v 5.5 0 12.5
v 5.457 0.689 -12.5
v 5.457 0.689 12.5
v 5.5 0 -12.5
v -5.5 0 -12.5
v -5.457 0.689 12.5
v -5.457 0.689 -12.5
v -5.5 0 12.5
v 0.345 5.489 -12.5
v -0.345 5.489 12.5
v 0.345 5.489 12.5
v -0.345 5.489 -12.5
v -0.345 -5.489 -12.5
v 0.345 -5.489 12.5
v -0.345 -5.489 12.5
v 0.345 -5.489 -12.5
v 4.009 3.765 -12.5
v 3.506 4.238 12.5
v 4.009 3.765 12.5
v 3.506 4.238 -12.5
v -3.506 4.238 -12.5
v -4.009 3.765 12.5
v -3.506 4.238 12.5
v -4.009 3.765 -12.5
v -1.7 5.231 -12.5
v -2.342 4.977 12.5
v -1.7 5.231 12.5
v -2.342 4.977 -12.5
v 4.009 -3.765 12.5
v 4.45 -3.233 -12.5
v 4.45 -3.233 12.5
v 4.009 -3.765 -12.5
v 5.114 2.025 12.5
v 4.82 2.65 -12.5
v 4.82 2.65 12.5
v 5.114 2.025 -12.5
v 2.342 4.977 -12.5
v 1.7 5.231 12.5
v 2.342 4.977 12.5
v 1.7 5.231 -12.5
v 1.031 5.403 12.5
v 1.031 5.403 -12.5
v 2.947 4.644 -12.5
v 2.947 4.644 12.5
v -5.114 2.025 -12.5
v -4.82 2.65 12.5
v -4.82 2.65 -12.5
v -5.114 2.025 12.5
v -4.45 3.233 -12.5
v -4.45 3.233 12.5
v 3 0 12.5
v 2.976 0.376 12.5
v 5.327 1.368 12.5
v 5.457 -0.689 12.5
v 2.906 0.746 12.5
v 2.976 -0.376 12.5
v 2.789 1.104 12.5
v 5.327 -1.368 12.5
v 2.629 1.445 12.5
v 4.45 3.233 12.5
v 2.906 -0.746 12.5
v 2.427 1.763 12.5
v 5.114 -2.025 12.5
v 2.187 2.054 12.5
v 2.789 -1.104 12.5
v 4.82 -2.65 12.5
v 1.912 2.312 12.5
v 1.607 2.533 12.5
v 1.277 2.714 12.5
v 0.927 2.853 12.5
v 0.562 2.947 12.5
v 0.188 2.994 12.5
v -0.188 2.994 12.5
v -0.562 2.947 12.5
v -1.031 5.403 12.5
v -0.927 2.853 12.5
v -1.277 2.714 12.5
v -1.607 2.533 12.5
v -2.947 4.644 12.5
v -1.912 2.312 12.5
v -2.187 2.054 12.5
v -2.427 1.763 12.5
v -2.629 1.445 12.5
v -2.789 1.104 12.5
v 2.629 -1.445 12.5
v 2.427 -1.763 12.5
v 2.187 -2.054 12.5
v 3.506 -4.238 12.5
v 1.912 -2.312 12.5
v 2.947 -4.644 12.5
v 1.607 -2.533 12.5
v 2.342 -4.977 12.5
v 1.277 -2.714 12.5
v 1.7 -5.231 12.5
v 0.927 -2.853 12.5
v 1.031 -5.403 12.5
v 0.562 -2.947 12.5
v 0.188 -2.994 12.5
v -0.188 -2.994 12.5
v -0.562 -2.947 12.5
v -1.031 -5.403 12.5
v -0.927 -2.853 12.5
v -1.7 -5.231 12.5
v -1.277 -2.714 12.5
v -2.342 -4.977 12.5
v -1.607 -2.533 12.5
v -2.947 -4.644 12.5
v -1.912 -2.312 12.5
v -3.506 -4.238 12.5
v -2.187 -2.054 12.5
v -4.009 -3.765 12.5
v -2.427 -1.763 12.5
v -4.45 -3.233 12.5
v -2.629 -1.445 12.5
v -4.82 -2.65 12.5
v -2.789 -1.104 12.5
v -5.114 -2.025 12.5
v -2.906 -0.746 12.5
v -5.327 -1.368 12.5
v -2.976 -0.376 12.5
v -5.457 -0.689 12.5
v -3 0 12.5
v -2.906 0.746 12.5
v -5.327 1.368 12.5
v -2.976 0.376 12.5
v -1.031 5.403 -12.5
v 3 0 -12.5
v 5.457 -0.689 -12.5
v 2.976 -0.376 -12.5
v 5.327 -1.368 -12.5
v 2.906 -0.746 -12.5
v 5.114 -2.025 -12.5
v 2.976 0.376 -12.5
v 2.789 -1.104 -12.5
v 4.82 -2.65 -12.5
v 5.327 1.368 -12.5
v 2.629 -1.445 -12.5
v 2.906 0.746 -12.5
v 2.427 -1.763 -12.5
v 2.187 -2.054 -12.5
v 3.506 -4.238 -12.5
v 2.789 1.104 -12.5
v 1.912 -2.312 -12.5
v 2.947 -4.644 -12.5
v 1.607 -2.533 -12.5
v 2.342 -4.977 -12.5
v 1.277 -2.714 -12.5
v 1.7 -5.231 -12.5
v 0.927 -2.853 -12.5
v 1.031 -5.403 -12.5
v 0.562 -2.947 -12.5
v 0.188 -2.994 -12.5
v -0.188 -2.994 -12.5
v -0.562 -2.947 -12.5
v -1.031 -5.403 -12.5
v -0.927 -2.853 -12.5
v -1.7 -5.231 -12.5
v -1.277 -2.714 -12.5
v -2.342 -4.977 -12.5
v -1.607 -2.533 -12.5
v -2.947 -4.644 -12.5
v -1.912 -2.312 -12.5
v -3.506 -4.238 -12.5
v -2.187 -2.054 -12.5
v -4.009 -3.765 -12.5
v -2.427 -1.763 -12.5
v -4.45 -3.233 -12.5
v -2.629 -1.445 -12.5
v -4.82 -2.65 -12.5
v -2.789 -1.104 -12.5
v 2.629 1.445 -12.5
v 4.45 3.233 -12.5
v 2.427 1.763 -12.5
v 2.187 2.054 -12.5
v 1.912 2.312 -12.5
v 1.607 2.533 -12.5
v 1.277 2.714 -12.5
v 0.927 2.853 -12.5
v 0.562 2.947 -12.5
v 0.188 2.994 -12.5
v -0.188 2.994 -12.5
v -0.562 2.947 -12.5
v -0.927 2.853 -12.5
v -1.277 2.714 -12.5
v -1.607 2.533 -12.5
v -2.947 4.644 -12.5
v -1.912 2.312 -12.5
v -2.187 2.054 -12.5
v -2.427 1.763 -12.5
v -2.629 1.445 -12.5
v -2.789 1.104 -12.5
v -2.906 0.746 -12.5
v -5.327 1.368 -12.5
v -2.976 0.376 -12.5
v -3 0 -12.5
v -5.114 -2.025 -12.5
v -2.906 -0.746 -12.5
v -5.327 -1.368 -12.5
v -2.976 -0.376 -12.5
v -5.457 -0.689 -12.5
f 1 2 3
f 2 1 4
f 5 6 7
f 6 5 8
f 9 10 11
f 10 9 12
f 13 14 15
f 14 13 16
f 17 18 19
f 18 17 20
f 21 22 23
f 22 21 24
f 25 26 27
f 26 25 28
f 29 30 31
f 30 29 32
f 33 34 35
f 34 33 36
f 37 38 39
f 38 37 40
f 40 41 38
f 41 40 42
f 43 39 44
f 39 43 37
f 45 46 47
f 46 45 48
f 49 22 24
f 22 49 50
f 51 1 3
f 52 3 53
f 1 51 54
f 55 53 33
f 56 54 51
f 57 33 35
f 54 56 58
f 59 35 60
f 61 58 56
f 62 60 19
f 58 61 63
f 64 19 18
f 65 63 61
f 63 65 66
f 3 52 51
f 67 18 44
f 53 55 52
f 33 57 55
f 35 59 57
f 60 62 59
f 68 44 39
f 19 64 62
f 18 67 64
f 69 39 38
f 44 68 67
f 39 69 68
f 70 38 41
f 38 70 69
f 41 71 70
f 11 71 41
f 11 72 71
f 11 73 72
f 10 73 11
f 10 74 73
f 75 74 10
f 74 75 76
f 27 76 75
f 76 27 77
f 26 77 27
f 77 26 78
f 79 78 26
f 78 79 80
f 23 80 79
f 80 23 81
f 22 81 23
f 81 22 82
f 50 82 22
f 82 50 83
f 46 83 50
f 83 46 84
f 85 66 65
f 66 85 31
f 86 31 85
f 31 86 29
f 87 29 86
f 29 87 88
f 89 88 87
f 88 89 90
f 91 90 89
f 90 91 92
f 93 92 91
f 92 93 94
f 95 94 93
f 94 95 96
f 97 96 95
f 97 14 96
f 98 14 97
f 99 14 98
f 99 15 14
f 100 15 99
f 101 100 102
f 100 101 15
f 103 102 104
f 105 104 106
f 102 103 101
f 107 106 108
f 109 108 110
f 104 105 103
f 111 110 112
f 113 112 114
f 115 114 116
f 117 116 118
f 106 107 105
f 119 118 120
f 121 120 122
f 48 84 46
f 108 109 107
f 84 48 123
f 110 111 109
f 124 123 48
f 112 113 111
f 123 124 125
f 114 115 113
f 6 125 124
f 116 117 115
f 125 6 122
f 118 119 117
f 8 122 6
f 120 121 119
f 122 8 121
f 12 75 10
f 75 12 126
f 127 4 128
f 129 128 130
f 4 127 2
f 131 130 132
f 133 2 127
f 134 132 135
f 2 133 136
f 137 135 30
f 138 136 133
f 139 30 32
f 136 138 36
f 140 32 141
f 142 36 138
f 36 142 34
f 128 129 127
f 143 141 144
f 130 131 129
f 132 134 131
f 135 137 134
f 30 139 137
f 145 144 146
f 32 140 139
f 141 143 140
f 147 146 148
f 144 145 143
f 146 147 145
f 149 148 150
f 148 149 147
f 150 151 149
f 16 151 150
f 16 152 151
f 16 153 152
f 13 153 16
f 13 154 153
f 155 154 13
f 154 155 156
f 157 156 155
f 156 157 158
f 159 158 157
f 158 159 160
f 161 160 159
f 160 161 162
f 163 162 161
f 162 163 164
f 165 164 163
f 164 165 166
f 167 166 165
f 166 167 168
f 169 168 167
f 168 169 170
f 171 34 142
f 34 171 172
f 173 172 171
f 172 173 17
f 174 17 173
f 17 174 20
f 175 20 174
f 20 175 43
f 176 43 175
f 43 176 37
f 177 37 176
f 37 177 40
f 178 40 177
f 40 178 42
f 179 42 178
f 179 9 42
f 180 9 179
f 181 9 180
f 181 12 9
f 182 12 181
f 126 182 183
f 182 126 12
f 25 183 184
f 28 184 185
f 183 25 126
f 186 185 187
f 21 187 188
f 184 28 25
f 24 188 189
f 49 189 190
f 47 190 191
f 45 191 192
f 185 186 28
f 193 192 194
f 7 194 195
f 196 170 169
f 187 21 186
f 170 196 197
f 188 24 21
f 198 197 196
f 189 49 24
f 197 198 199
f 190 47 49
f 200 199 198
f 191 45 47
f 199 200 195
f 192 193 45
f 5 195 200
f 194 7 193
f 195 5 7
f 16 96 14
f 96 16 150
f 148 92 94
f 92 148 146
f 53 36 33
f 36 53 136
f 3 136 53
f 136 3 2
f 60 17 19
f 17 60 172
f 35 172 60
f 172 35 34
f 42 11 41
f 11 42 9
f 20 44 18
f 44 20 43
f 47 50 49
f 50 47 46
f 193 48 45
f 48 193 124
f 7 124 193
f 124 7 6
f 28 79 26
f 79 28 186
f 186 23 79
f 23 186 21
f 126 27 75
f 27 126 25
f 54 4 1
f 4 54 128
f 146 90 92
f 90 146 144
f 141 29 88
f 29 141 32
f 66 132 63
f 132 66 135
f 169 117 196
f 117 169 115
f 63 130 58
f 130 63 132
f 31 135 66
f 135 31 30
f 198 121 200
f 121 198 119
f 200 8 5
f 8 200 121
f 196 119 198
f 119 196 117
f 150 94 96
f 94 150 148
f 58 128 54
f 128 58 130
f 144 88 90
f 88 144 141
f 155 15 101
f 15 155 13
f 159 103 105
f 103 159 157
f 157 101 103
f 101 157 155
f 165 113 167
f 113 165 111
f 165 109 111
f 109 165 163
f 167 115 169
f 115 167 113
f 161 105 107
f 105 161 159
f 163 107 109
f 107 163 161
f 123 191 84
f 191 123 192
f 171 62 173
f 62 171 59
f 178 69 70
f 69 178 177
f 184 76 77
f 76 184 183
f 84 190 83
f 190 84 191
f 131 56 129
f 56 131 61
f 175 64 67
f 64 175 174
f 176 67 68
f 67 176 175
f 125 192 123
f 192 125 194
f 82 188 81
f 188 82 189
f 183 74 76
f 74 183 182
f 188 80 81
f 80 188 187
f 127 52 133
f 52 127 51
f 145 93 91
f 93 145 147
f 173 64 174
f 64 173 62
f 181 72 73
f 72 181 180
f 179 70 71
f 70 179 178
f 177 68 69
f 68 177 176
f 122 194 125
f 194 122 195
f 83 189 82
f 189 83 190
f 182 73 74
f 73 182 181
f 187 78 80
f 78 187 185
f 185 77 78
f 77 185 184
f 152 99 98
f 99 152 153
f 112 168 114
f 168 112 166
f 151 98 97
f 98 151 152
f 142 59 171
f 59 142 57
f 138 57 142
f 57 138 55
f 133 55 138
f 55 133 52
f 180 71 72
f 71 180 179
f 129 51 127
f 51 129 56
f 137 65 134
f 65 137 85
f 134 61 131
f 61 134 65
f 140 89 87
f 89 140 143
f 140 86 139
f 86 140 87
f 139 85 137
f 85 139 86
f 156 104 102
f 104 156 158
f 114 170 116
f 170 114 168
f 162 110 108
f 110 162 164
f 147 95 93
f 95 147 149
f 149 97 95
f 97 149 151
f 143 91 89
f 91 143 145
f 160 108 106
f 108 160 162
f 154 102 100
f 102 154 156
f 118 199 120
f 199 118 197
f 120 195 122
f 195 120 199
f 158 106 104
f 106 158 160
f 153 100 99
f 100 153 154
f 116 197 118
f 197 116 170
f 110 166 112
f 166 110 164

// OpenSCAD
$fn = 50;


difference() {
	union() {
		translate(v = [0, 0, -12.5000000000]) {
			cylinder(h = 25, r = 5.5000000000);
		}
	}
	union() {
		translate(v = [0, 0, -100.0000000000]) {
			cylinder(h = 200, r = 3.0000000000);
		}
	}
}
